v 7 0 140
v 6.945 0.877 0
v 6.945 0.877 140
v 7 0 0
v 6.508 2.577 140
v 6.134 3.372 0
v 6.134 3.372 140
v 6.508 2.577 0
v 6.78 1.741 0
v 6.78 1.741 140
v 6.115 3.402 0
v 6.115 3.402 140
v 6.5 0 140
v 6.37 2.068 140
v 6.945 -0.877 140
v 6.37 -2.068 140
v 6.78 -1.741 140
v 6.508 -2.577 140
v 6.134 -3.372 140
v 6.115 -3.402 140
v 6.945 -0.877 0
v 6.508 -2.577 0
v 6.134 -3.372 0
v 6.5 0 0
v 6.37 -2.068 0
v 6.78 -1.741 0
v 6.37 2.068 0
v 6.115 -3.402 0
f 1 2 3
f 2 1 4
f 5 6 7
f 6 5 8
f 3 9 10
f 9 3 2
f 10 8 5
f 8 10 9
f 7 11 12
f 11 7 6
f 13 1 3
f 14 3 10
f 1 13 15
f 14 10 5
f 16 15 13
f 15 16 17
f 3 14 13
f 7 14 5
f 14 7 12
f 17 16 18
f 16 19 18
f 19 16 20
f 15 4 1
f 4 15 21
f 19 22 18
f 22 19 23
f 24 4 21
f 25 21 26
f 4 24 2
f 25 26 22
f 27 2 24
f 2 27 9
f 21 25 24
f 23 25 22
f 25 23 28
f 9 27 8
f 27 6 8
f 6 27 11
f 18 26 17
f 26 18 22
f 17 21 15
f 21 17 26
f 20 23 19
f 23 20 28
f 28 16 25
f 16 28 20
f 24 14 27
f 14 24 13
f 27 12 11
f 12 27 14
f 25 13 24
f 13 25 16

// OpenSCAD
$fn = 50;


difference() {
	union() {
		cylinder(h = 140, r = 7.0000000000);
		translate(v = [-13.0000000000, 0, 0]) {
			cylinder(h = 140, r = 7.0000000000);
		}
	}
	union() {
		cylinder(h = 140, r = 3.2500000000);
		cylinder(h = 140, r = 1.8000000000);
		cylinder(h = 140, r = 1.8000000000);
		cylinder(h = 140, r = 1.8000000000);
		translate(v = [-17.5000000000, 0, 0]) {
			hull() {
				translate(v = [-3.7500000000, 0.0000000000, 0]) {
					cylinder(h = 140, r = 10.5000000000);
				}
				translate(v = [3.7500000000, 0.0000000000, 0]) {
					cylinder(h = 140, r = 10.5000000000);
				}
				translate(v = [-3.7500000000, -0.0000000000, 0]) {
					cylinder(h = 140, r = 10.5000000000);
				}
				translate(v = [3.7500000000, -0.0000000000, 0]) {
					cylinder(h = 140, r = 10.5000000000);
				}
			}
		}
		translate(v = [-10.0000000000, 0, 0.0000000000]) {
			cylinder(h = 140, r = 16.5000000000);
		}
	}
}
